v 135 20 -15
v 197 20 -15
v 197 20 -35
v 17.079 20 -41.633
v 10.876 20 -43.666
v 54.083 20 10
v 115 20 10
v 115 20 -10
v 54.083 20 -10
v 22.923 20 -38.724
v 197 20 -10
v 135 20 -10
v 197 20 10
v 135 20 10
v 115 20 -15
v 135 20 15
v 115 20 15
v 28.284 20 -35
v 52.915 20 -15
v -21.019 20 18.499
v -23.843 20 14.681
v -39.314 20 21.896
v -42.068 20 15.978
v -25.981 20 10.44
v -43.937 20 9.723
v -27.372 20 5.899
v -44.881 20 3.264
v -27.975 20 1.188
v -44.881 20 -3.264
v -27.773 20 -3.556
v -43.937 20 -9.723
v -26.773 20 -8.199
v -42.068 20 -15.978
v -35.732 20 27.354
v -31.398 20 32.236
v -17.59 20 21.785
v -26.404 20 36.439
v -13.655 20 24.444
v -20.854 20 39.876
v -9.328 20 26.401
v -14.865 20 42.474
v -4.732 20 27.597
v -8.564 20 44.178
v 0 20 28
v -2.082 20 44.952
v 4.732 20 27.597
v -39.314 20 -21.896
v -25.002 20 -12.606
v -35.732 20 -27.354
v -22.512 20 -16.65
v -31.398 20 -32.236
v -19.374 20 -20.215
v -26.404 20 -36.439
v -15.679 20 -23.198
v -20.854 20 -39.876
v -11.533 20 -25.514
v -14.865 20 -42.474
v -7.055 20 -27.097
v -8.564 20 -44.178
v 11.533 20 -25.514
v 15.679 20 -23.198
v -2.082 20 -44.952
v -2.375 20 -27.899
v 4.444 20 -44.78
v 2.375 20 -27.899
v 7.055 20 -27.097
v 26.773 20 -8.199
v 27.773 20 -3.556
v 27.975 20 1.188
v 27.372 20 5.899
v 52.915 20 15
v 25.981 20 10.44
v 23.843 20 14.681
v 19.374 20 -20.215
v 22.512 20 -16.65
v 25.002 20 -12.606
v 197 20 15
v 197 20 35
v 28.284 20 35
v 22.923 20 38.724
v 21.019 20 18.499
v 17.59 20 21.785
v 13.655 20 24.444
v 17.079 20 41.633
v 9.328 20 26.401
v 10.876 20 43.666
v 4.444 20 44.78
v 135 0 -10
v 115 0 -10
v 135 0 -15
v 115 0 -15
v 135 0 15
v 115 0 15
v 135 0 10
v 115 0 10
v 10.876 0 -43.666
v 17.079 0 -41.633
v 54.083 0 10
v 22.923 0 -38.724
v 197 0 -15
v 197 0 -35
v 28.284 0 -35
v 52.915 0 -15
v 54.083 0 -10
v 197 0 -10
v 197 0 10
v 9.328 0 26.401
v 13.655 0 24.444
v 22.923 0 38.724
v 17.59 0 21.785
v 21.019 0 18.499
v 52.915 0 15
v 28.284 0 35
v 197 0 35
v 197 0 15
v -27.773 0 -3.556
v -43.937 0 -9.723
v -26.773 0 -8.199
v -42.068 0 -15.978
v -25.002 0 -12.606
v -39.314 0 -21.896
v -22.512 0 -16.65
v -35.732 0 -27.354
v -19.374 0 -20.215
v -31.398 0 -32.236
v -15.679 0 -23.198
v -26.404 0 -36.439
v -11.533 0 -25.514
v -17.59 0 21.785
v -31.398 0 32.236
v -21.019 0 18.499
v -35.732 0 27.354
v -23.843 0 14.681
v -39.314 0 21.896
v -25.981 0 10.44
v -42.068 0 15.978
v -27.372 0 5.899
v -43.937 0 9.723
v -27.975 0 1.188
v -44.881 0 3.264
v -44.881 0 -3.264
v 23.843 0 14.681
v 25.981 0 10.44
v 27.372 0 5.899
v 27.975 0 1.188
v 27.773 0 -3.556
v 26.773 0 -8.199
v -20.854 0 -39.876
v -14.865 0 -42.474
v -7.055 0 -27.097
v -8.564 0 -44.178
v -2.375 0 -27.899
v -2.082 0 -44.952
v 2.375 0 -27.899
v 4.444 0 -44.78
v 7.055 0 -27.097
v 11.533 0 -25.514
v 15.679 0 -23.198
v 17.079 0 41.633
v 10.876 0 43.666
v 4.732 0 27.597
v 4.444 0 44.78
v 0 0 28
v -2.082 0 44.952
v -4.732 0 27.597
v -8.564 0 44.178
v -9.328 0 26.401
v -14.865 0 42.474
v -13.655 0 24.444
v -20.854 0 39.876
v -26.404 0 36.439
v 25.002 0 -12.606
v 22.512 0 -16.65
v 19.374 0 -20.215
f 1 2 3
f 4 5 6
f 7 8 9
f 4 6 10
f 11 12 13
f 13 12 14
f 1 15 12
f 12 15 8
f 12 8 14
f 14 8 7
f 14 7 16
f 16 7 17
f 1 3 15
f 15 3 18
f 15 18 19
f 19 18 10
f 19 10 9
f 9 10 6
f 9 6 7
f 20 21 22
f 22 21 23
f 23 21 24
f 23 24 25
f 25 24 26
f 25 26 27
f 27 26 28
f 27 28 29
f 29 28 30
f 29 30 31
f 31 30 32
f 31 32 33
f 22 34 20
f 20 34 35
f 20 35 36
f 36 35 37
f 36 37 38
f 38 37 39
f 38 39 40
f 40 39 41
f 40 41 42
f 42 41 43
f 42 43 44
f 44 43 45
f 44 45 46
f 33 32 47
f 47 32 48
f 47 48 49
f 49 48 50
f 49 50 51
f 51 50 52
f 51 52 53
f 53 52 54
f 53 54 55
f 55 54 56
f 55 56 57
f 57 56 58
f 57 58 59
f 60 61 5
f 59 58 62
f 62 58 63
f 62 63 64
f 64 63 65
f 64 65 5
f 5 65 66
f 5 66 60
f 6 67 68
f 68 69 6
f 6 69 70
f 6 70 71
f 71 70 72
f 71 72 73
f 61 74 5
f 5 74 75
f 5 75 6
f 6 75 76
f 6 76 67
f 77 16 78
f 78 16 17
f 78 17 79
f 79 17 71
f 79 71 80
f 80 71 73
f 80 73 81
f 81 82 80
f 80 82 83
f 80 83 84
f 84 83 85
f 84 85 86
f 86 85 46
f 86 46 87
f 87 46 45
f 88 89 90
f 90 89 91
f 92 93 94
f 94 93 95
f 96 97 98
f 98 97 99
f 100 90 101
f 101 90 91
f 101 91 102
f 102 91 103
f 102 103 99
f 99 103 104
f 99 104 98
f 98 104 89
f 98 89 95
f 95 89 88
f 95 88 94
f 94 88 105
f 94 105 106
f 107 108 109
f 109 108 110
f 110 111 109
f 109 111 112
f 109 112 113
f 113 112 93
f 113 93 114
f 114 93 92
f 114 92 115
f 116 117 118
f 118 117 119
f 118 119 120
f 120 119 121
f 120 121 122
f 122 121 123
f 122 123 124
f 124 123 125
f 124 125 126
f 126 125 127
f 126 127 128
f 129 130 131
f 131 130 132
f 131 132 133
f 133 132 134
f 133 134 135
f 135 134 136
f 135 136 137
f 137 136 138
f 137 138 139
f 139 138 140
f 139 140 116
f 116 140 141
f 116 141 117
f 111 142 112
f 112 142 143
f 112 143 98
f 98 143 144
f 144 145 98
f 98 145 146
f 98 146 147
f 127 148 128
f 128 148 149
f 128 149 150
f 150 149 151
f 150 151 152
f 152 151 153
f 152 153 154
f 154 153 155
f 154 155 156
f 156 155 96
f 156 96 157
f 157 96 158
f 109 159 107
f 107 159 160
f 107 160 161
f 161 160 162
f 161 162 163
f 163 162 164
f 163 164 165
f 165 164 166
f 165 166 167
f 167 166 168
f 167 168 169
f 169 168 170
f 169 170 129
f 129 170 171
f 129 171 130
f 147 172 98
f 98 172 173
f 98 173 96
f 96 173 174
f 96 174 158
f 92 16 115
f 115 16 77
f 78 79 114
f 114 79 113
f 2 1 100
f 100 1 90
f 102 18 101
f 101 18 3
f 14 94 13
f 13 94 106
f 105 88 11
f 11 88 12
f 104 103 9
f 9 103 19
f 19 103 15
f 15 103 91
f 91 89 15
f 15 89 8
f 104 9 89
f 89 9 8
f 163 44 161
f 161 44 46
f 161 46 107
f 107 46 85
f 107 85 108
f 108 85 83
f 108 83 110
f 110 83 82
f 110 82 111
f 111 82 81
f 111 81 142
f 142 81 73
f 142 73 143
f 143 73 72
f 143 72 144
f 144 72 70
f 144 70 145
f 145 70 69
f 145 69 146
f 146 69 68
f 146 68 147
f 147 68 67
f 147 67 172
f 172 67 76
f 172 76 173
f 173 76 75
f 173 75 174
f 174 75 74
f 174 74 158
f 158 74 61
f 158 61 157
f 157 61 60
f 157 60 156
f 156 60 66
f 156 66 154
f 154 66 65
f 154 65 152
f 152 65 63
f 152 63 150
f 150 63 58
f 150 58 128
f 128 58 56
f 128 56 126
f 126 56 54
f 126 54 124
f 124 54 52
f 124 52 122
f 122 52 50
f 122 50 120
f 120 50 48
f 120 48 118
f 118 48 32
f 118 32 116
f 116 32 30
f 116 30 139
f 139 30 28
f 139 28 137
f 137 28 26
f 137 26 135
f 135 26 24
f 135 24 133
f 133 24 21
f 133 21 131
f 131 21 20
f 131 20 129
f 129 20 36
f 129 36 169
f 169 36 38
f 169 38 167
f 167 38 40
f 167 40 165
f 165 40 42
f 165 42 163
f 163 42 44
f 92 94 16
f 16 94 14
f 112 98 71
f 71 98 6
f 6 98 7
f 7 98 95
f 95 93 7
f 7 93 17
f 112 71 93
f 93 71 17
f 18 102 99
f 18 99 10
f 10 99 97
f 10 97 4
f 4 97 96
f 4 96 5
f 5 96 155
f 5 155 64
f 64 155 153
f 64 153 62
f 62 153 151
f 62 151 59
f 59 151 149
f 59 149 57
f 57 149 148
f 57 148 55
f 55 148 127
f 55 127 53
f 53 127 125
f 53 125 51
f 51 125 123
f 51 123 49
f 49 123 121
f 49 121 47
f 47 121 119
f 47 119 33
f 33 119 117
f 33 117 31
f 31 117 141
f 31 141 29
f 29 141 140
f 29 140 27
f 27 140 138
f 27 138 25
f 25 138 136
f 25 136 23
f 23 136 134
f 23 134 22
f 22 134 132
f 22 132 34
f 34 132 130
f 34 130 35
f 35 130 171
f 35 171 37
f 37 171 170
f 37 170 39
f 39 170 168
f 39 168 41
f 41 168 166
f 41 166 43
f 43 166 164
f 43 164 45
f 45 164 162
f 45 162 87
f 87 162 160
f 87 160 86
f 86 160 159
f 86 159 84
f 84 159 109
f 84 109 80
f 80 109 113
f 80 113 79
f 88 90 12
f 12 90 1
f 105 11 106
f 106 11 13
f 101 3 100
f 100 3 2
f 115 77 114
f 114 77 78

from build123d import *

# Parameters (mm, degrees)
STOCK_EXHAUST_M5_WASHER15_B_1_OUTLINE_R = 28
STOCK_EXHAUST_M5_WASHER15_B_1_DEPTH     = 20
SKETCH1_W                               = 20
SKETCH1_H                               = 20
CUT_EXTRUDE1_DEPTH                      = 3
LPATTERN1_COUNT                         = 2
LPATTERN1_PITCH                         = 25
LPATTERN1_COL_COUNT                     = 2
LPATTERN1_COL_PITCH                     = 25


# Read off the part's stored shape, not the designer's step: Stock-Exhaust_M5_washer15_B-1
with BuildPart() as part:
    # Stock-Exhaust_M5_washer15_B-1 outline → Stock-Exhaust_M5_washer15_B-1 (new body)
    with BuildSketch(Plane(origin=(0, 0, 0), x_dir=(1, 0, 0), z_dir=(0, 1, 0))):
        with BuildLine():
            Line((200, -15), (135, -15))
            Line((135, -15), (135, -10))
            Line((135, -10), (200, -10))
            Line((200, -10), (200, 10))
            Line((200, 10), (135, 10))
            Line((135, 10), (135, 15))
            Line((135, 15), (200, 15))
            Line((200, 15), (200, 35))
            Line((200, 35), (28.284271247, 35))
            ThreePointArc((28.284271247, 35), (-45, 0), (28.284271247, -35))
            Line((28.284271247, -35), (200, -35))
            Line((200, -35), (200, -15))
        make_face()
        with BuildLine():
            ThreePointArc((52.915026221, -15), (53.557527969, -12.513640473), (54.083269132, -10))
            Line((54.083269132, -10), (115, -10))
            Line((115, -10), (115, -15))
            Line((115, -15), (52.915026221, -15))
        make_face(mode=Mode.SUBTRACT)
        Circle(STOCK_EXHAUST_M5_WASHER15_B_1_OUTLINE_R, mode=Mode.SUBTRACT)
        with BuildLine():
            ThreePointArc((54.083269132, 10), (53.557527969, 12.513640473), (52.915026221, 15))
            Line((52.915026221, 15), (115, 15))
            Line((115, 15), (115, 10))
            Line((115, 10), (54.083269132, 10))
        make_face(mode=Mode.SUBTRACT)
    extrude(amount=STOCK_EXHAUST_M5_WASHER15_B_1_DEPTH)

    # Sketch1 → Cut-Extrude1 (cut)
    with BuildSketch(Plane(origin=(200, 0, 0), x_dir=(0, 0, -1), z_dir=(1, 0, 0))):
        with Locations((0, 10)):
            Rectangle(SKETCH1_W, SKETCH1_H)
    cut_extrude1 = extrude(amount=-CUT_EXTRUDE1_DEPTH, mode=Mode.SUBTRACT)

    # LPattern1: Cut-Extrude1 ×2
    with Locations(*[(0, 0, -i * LPATTERN1_PITCH) for i in range(1, LPATTERN1_COUNT)]):
        add(cut_extrude1, mode=Mode.SUBTRACT)

    # LPattern1 col: Cut-Extrude1 ×2
    with Locations(*[(0, 0, i * LPATTERN1_COL_PITCH) for i in range(1, LPATTERN1_COL_COUNT)]):
        add(cut_extrude1, mode=Mode.SUBTRACT)


solid = part.part
